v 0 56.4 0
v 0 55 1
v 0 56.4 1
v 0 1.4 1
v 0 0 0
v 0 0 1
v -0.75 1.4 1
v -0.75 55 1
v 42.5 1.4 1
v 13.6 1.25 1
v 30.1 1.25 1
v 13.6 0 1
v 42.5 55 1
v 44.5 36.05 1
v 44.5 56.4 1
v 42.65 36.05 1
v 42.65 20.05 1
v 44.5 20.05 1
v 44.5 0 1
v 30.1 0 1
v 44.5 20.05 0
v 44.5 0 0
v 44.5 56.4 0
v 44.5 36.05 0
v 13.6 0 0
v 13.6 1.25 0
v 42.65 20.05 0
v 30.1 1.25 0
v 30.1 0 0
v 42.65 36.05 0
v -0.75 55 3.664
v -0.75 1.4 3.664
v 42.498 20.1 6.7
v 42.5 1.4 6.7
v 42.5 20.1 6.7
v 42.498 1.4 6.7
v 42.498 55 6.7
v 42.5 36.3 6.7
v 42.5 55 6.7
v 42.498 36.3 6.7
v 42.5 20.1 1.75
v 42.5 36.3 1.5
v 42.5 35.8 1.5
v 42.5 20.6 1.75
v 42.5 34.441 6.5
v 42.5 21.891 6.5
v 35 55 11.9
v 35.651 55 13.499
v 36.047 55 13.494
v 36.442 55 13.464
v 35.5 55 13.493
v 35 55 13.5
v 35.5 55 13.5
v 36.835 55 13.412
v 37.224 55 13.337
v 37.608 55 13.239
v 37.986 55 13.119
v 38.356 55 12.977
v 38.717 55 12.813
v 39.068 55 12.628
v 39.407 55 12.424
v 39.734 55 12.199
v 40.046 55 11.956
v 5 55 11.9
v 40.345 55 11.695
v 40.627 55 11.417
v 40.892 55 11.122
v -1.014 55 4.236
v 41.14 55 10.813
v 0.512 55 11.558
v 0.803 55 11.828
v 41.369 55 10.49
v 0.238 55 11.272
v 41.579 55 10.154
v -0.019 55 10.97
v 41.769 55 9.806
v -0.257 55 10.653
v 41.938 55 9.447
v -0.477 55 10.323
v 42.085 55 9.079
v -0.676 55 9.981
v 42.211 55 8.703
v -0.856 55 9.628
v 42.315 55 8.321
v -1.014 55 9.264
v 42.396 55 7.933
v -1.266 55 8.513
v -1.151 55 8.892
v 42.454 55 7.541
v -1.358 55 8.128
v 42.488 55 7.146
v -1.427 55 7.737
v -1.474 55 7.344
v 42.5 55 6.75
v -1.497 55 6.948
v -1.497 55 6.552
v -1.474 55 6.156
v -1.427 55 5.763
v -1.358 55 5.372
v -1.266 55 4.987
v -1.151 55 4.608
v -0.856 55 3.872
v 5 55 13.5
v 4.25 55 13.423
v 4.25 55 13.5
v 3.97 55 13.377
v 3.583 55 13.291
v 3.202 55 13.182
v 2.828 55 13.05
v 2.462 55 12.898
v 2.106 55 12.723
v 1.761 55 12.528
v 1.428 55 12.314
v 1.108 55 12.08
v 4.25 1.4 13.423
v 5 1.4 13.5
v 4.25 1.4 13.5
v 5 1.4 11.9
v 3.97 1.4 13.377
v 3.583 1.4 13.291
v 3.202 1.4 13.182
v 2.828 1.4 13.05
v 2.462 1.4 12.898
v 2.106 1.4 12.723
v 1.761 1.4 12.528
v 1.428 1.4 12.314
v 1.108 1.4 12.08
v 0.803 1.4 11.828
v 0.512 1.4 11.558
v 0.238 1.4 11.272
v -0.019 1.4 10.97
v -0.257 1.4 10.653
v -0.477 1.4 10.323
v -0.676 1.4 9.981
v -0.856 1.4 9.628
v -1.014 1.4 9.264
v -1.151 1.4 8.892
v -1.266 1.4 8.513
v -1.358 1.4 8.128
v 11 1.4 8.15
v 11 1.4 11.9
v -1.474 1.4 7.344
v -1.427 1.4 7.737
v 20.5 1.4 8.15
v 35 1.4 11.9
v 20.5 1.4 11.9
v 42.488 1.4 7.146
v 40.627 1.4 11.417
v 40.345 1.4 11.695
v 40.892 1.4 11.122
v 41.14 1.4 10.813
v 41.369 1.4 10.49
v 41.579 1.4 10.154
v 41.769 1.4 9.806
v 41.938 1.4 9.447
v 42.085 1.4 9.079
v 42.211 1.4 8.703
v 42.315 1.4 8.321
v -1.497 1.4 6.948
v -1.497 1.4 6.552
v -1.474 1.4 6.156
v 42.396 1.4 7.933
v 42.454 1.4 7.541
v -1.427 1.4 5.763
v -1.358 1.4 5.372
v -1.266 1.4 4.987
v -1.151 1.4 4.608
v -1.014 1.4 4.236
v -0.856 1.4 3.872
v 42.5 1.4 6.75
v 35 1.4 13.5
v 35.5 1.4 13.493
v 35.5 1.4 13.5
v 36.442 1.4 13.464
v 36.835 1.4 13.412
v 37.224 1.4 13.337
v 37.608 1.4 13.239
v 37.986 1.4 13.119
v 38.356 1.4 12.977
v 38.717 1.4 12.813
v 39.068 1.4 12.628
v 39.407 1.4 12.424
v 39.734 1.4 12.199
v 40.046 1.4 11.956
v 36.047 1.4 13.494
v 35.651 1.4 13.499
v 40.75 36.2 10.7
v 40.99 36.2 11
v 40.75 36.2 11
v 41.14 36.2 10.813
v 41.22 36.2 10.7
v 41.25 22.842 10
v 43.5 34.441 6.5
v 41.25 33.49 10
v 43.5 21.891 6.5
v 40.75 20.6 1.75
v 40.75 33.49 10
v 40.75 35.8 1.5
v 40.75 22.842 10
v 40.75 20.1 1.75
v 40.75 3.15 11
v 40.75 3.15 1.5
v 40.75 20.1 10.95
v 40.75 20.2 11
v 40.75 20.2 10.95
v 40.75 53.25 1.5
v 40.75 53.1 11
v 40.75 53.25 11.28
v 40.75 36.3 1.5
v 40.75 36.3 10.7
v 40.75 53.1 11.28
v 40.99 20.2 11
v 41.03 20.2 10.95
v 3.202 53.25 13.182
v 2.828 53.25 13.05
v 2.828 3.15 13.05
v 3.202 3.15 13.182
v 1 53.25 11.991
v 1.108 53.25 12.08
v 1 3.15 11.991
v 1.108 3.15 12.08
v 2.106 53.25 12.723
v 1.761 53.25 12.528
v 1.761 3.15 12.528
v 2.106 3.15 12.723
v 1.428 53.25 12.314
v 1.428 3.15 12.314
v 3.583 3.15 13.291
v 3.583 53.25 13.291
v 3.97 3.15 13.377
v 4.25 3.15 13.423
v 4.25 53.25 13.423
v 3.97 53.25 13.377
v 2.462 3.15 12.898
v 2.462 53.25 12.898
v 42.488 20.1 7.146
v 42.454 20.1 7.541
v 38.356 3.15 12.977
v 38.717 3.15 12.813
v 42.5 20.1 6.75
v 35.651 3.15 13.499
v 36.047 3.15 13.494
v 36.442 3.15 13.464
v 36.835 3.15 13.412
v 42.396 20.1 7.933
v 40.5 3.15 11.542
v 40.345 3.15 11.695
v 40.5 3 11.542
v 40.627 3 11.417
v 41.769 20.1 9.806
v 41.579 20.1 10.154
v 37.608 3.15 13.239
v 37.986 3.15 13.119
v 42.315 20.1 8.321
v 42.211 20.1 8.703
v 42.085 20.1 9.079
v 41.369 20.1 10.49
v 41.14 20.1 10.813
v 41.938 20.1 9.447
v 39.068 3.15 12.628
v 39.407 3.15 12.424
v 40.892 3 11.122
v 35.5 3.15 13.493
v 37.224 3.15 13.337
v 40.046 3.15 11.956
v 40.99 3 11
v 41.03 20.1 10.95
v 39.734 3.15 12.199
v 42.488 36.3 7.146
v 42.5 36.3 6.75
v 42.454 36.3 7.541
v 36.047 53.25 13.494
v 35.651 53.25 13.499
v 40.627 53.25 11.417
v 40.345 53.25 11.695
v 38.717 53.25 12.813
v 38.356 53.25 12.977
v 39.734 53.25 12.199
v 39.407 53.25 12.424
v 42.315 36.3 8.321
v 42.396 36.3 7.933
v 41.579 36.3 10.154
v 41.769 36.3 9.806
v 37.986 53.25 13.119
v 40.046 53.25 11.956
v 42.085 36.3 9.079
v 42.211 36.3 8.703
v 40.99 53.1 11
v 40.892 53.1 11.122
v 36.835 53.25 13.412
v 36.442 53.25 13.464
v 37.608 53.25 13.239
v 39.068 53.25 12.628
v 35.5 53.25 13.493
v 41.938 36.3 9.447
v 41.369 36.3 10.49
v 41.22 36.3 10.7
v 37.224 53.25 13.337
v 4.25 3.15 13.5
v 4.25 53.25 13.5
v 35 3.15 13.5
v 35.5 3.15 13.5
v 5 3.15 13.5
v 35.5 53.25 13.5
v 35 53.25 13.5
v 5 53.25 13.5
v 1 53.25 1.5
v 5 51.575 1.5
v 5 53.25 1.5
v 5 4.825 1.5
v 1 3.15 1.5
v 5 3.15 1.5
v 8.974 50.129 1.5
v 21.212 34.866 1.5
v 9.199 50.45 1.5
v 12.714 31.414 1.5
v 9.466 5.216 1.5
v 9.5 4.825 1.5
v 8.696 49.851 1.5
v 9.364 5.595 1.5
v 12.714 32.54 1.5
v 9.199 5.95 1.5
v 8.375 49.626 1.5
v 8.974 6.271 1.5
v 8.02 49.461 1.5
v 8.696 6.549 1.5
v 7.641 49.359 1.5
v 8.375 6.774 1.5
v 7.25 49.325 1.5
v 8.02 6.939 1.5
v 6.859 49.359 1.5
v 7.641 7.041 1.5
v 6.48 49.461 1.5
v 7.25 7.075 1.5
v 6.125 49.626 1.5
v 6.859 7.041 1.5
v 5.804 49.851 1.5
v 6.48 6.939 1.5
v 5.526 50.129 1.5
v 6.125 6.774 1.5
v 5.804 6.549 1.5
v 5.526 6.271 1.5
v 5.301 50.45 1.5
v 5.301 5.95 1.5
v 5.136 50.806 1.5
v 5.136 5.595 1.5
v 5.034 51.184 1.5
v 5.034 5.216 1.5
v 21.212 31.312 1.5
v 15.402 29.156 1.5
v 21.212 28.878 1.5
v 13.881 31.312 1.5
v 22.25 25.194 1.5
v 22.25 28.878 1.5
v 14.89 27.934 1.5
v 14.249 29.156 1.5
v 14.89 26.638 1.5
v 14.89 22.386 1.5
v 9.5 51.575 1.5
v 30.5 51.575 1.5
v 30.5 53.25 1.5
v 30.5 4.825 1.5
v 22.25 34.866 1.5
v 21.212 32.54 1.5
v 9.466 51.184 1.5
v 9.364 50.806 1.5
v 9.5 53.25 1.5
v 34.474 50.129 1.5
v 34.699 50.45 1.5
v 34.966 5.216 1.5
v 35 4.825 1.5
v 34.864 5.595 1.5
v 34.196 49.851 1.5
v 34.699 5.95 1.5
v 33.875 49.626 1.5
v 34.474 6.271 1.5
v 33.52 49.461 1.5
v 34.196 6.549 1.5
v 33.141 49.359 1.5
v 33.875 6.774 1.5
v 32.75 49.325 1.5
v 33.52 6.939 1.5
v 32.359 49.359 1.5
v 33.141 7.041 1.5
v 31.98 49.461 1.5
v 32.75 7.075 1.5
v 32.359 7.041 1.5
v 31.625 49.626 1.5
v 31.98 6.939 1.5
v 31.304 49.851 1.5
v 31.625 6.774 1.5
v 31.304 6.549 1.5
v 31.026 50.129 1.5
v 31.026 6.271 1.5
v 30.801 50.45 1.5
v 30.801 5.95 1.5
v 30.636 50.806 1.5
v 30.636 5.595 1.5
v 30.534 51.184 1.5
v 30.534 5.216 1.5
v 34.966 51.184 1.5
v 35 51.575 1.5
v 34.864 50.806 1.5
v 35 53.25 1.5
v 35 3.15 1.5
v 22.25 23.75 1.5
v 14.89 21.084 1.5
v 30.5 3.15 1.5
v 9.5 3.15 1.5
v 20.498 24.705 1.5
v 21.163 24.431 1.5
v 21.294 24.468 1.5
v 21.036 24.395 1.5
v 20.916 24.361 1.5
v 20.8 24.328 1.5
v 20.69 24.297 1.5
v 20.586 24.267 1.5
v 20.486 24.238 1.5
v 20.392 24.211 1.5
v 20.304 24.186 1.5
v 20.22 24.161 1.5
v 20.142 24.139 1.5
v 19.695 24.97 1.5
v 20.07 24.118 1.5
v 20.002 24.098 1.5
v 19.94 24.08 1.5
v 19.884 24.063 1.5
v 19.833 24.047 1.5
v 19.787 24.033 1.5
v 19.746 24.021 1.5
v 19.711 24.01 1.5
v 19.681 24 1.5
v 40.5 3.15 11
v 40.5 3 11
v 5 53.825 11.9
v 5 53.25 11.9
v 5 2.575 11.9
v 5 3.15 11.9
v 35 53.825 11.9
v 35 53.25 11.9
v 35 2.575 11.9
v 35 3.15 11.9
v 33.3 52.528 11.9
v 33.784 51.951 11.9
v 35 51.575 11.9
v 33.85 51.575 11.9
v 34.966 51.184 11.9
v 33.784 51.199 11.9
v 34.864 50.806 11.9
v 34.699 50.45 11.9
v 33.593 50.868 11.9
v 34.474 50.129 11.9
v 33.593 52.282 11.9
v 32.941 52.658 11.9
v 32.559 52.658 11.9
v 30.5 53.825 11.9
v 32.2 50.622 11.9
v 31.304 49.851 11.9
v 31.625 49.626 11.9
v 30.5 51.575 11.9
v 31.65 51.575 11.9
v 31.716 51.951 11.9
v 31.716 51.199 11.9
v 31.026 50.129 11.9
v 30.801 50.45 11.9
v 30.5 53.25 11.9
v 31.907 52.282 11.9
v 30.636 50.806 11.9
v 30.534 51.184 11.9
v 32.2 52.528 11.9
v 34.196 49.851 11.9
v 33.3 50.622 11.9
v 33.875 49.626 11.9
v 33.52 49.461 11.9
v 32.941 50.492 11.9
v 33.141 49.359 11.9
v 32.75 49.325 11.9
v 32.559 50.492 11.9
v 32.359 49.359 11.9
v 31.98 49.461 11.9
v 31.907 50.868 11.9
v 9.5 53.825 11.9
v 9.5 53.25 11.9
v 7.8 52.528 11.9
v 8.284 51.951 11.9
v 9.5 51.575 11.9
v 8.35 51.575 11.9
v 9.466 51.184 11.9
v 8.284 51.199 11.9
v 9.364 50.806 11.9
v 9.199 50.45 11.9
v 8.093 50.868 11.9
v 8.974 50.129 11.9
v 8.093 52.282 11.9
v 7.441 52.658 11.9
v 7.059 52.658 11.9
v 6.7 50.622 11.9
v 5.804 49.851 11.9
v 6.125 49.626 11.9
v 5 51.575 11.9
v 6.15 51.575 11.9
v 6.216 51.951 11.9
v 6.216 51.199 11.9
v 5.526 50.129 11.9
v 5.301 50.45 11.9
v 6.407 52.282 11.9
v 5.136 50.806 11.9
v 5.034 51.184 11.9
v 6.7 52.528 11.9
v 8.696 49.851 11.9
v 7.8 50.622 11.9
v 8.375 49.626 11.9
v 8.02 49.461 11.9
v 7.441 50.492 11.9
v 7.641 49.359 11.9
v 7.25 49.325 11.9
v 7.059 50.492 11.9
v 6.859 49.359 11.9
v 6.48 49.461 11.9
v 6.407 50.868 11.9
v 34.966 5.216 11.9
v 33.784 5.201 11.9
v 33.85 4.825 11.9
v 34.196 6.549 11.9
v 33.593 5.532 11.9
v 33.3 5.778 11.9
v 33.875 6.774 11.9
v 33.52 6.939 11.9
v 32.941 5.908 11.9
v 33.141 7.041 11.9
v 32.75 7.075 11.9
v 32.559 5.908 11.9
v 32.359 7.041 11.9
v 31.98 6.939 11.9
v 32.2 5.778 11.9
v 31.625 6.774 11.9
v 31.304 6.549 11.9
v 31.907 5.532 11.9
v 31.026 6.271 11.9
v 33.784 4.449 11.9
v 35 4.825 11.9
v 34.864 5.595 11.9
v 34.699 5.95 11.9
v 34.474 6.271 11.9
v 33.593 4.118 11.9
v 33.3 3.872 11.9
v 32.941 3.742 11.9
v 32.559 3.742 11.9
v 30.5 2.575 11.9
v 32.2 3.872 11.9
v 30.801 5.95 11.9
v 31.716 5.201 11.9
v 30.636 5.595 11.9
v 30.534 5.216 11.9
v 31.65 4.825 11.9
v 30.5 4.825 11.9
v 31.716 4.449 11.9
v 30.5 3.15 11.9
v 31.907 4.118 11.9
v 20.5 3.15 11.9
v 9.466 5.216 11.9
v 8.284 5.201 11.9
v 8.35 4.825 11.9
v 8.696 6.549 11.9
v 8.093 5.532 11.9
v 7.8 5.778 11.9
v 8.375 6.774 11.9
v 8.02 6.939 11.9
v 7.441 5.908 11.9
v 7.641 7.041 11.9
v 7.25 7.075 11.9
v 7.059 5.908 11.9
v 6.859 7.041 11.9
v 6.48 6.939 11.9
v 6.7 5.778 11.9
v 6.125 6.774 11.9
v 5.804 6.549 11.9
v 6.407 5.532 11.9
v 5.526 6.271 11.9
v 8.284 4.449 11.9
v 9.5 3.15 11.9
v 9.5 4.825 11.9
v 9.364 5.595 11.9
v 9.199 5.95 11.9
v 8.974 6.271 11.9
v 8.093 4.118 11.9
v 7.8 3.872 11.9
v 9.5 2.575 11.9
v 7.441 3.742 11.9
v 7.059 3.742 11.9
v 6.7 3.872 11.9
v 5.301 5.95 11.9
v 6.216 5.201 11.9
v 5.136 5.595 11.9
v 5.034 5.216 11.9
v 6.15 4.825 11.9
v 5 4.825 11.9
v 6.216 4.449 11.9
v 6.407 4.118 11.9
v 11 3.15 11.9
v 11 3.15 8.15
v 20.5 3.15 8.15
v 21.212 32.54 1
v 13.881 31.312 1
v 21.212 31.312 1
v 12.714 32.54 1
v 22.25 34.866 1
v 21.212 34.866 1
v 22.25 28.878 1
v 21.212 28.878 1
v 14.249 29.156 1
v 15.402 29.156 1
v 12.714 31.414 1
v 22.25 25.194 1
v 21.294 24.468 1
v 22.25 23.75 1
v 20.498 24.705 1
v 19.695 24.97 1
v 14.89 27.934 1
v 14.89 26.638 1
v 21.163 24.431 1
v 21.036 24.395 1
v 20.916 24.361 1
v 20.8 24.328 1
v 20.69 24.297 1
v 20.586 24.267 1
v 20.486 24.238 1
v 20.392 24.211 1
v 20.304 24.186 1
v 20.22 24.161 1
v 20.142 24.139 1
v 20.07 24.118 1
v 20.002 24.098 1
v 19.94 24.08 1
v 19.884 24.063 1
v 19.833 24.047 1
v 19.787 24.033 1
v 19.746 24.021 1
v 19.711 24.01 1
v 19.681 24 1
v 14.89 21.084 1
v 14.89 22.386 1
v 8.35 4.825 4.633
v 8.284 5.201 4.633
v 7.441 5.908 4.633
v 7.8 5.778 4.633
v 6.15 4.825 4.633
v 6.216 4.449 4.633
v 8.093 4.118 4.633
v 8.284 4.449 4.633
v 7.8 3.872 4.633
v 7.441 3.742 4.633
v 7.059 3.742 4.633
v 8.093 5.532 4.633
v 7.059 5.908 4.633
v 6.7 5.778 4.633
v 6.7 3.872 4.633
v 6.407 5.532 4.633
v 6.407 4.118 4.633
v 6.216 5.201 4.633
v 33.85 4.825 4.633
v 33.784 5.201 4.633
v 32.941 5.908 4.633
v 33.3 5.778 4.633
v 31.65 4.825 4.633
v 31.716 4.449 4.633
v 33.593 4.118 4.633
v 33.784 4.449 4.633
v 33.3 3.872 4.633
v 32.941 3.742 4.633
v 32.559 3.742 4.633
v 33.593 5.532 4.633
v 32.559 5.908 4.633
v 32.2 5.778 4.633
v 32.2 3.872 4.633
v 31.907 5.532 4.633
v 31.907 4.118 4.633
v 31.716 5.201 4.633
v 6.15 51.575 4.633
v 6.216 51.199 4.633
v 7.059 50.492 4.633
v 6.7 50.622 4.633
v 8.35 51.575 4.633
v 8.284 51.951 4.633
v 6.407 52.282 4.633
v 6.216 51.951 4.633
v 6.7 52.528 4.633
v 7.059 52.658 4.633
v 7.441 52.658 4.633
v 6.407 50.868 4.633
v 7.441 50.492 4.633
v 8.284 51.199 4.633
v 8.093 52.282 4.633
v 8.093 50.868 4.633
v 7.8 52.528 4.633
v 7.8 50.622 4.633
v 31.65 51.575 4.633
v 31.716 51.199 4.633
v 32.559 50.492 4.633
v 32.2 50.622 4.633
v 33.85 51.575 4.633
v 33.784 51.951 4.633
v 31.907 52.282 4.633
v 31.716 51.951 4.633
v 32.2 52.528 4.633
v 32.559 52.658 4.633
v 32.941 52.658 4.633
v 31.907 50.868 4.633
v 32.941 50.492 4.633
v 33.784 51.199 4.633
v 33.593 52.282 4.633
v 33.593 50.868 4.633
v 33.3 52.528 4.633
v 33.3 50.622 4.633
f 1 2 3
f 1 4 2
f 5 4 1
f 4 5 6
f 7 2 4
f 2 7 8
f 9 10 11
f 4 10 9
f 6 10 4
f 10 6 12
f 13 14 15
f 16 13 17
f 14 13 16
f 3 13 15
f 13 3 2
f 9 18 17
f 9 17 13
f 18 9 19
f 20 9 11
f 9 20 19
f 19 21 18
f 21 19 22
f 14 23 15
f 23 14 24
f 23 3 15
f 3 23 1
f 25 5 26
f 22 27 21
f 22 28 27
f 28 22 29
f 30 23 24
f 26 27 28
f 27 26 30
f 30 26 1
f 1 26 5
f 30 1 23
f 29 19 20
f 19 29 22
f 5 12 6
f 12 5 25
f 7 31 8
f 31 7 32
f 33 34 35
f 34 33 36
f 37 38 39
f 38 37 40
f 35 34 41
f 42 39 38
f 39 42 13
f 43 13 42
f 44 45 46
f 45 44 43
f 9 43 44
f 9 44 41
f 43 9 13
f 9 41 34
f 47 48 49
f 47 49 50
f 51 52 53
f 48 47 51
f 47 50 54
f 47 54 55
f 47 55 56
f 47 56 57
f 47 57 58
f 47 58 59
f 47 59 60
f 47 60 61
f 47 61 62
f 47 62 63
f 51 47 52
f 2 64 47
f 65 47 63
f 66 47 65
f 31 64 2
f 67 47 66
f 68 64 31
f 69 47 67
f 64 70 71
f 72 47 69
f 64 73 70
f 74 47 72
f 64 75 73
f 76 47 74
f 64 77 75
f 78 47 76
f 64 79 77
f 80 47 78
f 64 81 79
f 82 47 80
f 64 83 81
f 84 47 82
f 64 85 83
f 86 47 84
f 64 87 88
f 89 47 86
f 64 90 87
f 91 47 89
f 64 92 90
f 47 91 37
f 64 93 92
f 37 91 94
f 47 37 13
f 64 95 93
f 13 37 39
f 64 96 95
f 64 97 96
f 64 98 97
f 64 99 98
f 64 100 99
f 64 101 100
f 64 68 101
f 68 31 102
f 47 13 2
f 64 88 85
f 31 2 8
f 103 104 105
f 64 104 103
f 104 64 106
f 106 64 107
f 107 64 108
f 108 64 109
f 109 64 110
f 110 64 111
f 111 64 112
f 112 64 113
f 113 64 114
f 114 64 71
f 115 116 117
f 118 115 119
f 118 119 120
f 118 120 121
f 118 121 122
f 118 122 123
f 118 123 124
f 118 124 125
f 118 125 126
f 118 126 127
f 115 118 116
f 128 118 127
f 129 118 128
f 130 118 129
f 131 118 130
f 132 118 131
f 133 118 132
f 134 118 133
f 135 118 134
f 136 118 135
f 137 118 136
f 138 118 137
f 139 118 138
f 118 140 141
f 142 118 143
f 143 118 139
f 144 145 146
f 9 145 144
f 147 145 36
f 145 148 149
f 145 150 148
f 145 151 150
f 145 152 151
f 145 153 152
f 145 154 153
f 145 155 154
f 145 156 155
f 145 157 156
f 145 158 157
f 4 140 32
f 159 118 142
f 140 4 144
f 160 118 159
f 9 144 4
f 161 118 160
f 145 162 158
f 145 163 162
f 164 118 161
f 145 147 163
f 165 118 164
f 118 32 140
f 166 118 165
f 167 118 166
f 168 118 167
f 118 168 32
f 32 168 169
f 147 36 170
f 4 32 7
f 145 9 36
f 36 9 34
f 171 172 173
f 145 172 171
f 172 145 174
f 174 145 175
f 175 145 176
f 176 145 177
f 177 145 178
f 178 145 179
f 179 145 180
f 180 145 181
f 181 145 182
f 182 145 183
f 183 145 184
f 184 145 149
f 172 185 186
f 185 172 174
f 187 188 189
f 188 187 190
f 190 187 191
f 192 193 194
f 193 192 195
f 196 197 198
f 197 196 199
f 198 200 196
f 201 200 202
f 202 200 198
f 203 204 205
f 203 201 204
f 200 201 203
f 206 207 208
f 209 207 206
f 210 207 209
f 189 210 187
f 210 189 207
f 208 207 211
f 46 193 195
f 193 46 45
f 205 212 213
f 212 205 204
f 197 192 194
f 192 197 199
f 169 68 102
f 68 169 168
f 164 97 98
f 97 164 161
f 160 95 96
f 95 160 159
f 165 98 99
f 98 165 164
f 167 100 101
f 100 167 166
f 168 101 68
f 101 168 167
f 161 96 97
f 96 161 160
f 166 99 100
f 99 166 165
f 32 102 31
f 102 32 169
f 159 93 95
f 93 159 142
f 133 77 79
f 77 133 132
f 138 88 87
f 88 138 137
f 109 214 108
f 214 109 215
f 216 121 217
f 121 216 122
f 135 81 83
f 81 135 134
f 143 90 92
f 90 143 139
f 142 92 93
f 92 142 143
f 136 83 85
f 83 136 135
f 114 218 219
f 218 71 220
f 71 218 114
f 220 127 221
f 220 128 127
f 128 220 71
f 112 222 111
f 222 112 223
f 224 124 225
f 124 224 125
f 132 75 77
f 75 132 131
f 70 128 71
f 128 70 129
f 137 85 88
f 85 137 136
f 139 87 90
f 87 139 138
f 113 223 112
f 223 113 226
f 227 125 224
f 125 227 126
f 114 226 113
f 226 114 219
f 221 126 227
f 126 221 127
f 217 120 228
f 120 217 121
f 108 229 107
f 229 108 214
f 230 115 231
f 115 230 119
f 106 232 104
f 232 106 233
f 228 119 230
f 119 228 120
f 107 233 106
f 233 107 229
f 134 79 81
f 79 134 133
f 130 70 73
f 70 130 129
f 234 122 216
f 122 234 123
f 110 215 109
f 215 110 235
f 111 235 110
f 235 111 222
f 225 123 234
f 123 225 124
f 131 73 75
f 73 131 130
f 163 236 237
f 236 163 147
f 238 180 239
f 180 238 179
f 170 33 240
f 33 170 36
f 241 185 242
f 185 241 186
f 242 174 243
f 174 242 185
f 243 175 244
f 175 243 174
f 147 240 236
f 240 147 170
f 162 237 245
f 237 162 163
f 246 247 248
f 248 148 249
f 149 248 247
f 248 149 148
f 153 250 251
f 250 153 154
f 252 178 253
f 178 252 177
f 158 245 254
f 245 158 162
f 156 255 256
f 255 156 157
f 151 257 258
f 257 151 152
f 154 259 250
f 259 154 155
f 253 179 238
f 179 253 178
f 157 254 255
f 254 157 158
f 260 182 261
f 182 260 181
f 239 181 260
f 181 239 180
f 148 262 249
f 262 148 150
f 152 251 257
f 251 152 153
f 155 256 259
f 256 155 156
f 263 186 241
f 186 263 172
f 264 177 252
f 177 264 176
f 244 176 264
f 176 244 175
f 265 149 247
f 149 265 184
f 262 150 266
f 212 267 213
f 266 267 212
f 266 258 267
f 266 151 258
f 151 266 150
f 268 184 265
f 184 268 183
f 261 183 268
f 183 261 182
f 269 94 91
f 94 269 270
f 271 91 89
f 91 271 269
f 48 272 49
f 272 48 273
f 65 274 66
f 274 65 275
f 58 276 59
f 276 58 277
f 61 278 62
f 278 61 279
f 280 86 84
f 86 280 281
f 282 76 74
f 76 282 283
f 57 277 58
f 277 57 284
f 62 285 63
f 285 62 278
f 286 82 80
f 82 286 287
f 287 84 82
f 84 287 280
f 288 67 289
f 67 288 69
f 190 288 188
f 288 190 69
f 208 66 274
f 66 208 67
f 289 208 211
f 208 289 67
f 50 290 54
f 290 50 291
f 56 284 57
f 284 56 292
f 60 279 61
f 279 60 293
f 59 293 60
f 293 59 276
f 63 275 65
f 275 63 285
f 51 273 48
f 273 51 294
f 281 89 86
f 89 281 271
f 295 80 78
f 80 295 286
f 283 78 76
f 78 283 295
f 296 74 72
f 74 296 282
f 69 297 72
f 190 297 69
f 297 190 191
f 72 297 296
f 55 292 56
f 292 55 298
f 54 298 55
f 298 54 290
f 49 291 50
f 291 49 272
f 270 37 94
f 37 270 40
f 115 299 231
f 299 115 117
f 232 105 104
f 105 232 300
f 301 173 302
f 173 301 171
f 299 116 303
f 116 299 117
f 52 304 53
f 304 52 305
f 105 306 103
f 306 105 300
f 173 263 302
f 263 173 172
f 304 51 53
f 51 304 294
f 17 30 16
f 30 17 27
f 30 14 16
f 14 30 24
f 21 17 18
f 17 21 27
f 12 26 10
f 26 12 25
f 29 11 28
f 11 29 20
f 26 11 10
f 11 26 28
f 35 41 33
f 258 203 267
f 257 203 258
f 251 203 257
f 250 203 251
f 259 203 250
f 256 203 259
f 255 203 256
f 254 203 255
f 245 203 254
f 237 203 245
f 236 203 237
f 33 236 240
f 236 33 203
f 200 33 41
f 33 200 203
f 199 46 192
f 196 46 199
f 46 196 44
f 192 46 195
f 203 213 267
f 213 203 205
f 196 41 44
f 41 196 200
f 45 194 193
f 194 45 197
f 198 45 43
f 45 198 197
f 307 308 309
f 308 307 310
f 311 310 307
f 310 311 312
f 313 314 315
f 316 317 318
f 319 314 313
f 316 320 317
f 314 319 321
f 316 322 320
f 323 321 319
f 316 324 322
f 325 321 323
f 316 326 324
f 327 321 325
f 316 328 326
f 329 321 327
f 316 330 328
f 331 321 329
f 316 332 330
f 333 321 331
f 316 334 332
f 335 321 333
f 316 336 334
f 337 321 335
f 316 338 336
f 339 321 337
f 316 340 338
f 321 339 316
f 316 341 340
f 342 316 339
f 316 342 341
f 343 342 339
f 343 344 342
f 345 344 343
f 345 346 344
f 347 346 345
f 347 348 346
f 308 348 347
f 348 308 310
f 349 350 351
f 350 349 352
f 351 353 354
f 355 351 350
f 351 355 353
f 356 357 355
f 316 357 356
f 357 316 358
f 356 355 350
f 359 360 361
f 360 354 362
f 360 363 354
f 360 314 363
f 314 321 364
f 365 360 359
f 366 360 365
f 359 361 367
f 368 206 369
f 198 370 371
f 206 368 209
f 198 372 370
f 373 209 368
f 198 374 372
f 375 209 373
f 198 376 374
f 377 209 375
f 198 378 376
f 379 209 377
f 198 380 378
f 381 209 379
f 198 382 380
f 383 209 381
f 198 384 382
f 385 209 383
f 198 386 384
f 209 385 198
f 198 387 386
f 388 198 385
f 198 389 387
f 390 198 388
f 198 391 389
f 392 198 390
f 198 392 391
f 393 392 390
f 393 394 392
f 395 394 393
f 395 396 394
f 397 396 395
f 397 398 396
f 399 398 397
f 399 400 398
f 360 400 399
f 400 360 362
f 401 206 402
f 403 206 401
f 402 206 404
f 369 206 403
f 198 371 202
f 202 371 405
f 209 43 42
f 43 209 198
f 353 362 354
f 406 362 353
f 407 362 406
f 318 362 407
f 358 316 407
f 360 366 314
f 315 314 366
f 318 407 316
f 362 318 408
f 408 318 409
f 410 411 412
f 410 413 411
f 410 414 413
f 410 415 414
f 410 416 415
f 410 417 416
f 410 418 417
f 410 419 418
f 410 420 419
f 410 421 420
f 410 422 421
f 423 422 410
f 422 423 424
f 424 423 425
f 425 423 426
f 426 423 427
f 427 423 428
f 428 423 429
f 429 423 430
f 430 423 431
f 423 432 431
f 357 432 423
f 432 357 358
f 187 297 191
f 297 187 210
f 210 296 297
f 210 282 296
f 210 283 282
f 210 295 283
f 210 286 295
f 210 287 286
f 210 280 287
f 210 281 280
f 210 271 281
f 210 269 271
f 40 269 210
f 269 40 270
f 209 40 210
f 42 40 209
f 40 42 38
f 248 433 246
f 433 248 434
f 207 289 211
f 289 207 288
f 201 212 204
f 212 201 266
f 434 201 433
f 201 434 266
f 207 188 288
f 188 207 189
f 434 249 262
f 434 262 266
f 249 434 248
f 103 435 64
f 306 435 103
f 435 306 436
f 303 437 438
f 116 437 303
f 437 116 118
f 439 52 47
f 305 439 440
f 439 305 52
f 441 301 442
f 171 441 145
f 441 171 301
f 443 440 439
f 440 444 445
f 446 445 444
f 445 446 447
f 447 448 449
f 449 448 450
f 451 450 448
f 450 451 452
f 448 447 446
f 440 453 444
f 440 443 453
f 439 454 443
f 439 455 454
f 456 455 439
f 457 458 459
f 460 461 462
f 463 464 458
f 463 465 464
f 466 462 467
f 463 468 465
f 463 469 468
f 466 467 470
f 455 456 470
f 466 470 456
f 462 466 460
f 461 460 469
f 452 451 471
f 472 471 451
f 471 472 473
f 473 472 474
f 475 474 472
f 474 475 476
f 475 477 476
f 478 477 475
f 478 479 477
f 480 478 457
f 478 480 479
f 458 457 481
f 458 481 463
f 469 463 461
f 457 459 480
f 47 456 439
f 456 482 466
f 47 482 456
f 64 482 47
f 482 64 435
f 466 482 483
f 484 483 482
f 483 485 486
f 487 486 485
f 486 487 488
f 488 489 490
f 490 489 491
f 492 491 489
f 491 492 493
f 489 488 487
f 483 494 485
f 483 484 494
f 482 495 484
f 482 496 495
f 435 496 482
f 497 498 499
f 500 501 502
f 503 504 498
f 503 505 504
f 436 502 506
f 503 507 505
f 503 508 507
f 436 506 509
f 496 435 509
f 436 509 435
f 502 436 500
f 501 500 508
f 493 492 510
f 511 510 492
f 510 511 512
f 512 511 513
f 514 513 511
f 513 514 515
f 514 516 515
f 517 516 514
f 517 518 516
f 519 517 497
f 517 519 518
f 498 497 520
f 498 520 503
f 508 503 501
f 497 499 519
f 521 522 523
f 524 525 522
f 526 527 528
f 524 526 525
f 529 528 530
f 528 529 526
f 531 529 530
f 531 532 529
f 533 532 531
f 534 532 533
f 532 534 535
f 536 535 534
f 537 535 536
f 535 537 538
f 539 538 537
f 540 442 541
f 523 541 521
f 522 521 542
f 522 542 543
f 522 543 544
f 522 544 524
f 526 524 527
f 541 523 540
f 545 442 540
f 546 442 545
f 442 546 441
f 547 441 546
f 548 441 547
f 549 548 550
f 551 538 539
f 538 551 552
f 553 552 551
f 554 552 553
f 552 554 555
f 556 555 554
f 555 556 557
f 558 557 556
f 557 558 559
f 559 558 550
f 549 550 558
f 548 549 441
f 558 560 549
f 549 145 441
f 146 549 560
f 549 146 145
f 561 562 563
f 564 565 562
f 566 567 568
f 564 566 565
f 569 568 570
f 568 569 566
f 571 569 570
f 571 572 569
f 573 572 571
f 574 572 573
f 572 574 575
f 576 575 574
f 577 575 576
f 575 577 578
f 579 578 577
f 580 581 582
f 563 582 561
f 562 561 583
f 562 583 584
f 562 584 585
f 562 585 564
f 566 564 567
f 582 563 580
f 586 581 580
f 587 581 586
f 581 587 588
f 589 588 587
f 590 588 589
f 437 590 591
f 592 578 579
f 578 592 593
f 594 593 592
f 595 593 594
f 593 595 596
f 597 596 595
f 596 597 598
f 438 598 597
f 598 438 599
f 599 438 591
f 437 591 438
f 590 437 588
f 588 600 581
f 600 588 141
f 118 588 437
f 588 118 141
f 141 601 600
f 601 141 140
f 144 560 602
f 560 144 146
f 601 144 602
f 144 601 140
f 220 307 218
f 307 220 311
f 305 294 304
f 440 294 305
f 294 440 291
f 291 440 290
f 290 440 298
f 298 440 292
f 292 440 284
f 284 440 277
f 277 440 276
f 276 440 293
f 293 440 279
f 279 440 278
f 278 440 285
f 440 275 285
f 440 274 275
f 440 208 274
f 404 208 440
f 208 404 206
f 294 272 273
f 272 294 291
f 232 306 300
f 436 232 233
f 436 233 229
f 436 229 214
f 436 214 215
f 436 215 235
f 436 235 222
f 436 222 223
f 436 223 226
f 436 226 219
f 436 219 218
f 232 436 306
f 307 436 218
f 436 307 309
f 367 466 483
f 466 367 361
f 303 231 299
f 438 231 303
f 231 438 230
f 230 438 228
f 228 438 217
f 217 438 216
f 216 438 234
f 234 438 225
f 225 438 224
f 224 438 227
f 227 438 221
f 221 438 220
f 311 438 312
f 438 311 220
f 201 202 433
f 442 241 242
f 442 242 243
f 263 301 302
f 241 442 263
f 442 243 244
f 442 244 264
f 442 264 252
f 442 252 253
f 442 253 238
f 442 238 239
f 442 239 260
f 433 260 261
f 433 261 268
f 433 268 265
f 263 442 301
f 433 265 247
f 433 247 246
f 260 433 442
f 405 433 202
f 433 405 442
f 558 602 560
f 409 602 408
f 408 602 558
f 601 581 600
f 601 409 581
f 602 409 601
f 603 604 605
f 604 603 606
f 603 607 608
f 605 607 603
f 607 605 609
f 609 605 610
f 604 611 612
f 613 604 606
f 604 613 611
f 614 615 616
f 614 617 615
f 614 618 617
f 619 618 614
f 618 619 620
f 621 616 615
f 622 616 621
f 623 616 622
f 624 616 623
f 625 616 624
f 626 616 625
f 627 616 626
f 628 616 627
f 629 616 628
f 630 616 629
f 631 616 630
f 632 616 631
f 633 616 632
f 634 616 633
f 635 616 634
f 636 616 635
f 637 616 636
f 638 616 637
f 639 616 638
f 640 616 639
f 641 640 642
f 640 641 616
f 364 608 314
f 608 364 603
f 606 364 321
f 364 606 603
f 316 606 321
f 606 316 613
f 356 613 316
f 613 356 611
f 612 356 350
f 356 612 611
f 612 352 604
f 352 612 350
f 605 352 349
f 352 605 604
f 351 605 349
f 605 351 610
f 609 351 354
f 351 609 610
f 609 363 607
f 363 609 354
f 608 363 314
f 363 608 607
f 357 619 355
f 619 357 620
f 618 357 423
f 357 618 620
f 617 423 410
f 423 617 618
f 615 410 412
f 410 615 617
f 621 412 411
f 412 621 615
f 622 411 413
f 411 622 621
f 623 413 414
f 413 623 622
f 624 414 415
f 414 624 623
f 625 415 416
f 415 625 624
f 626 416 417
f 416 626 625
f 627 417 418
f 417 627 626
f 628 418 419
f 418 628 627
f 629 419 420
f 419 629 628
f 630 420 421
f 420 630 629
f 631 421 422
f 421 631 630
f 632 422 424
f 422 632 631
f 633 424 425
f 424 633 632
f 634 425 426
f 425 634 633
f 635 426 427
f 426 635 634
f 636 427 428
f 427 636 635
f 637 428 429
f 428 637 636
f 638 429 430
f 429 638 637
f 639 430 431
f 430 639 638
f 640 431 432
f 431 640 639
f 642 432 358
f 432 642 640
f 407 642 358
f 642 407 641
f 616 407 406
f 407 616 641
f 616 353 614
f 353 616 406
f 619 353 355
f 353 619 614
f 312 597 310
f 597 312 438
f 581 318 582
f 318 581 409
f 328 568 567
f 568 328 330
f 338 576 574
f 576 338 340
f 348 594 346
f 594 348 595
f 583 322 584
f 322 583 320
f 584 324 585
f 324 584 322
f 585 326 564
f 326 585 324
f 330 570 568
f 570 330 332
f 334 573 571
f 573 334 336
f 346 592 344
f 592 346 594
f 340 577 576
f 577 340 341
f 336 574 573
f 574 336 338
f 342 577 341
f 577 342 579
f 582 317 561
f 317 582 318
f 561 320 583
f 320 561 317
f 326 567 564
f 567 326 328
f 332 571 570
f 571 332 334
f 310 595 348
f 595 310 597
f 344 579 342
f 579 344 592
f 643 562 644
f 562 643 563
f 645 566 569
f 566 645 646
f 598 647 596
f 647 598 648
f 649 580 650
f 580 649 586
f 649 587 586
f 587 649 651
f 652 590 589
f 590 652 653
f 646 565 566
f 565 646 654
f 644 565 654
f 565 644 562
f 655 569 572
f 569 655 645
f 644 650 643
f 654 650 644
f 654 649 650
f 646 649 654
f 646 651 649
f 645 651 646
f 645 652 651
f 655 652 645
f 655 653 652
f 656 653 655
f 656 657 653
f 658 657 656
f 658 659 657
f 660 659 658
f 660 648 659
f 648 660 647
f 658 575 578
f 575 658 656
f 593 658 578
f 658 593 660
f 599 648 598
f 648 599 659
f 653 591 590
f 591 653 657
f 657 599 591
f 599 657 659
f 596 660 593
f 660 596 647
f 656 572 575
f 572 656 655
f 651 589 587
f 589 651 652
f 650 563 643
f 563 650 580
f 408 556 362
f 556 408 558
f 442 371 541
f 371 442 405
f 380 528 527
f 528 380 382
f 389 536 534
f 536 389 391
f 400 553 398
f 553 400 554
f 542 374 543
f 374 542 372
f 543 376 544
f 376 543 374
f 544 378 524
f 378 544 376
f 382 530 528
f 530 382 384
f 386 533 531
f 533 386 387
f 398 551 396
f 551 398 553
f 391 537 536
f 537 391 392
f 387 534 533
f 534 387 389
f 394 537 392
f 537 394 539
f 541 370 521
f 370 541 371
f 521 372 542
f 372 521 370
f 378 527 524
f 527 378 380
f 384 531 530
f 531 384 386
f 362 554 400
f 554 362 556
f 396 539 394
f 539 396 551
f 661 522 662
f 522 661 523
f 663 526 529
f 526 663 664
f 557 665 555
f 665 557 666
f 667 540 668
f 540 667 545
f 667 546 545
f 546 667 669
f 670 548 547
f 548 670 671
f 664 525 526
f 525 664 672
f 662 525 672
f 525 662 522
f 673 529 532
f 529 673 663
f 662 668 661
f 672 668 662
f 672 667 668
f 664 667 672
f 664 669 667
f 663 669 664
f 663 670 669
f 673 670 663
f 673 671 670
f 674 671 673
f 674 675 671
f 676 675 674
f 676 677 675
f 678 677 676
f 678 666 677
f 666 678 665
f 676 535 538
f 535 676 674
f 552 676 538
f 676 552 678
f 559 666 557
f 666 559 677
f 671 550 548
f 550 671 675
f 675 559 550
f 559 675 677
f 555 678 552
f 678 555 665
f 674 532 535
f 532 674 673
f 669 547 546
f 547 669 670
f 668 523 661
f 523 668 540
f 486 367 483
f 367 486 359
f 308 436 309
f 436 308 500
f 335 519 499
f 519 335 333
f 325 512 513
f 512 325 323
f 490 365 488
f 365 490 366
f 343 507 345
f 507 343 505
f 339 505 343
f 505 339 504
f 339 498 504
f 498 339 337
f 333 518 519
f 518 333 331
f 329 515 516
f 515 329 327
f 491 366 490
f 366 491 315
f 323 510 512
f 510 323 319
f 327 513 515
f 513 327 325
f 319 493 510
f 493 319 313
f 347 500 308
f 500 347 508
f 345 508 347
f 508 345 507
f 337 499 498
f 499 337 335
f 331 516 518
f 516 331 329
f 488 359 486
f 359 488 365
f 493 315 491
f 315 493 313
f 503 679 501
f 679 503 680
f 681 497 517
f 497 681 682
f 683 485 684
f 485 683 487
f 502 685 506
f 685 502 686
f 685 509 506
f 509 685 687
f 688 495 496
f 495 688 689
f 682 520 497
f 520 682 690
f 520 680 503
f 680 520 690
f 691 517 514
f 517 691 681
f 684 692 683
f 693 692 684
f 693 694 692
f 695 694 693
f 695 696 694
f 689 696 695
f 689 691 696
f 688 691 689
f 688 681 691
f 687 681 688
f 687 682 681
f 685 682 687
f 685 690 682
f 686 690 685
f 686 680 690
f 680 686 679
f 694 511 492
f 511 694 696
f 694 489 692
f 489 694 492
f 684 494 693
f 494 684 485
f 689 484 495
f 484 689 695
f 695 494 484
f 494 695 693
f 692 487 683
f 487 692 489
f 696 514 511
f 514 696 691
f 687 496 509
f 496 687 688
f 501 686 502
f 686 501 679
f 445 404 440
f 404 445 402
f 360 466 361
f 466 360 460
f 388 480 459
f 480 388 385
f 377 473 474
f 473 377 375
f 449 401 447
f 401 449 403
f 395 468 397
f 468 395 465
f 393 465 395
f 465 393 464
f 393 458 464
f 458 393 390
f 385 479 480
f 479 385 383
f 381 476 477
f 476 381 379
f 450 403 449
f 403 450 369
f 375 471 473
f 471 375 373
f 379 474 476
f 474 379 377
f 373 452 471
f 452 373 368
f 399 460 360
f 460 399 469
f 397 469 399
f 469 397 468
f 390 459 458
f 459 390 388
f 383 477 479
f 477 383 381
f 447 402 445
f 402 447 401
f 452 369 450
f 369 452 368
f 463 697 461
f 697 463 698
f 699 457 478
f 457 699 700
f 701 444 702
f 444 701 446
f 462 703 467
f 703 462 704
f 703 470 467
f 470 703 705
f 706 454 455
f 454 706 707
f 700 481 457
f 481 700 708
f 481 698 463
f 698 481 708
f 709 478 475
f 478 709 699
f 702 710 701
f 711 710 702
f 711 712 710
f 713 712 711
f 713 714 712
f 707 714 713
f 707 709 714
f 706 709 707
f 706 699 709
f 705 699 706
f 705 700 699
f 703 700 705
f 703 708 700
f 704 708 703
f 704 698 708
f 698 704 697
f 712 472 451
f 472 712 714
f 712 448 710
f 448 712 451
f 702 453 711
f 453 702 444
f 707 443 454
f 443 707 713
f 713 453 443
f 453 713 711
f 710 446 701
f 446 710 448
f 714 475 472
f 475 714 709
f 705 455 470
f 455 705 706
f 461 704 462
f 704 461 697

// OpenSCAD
/*
  TI-58/59 Battery Lid for LiPo Pack V1
  This is intended to hold a PCB and a LiPo battery,
  and charge from USB. 

  Dimensions measured from several TI-58 and TI-59 calculators and two BP-1A packs.
  
  0.4 and earlier - very rough 
  
  0.5 - extended tab overhang to increase engagement with calculator latch
  
  0.6 - reduced contact_zabs to 13.5 to prevent PCB screws and LED from interfering with inside of TI-59
  
  0.7 - rounded cutout on inside of tab hinge to help de-stress and prevent breakage. Increased slope of latch tab to make insertion into calculator easier
  
  0.8 - removed cutout (made tab worse). This becomes V1

  T. LeMense
  February 7, 2021
*/


$fa = 1;
$fs = 0.4;

// L is length, and is along Y AXIS
// W is width, and is along X AXIS
// H is height, and is along Z AXIS

// baseplate (first surface)
base_t = 1.0;  // base thickness (measured)
base_w = 44.5;  // width (measured)
base_w3 = 14.4;  // ledge width from pol slot to latch end (measured)
base_w1 = 13.6;  // ledge w from round end to pol slot (measured)
base_w2 = base_w-base_w1-base_w3;  // calculate pol slot w (measured 16.4mm)
base_l = 56.4;   // length (measured)
ledge_t = 1.4;  // ledge along short sides (improved)
ledge_t1 = 0.75; // ledge step-back along curved long side
ledge_t2 = 2.0;  // ledge along latch side (measured)

//contact Z offset (absolute to bottom of base)
//keep below 15 to avoid interference with innards of TI59!
contact_zabs = 13.5; 

// PCB information
pcb_t = 1.6;
pcb_w = 30;
pcb_l = 53;
pcb_z = contact_zabs-pcb_t-base_t;
pcb_x = 5;

// USB connector cutout
// MOLEX 1050170001
usb_h = 3.75;
usb_w = 9.5;

// "superstructure"
super_w = base_w - ledge_t2 + ledge_t1; // width (short edge)
super_l = base_l - 2*ledge_t;  // length (long edge)
super_h = 5.7;  // the "straight rise" from baseplate
super_wall_t = 1.75;
super_floor_t = 0.5; // additional floor thickness
round_rad = (pcb_z+pcb_t+base_t)/2;

// latch 'tab' is an extruded polygon
latch_tab_w = super_wall_t + 1.0; // extent of tab past wall
latch_tab_h = 3.5;
latch_tab_w2 = 0.5;
latch_tab_l = 16.0;
latch_tab_z = 5.5;   // relative to base_t

p0 = [0, 0];
p1 = [0, latch_tab_h];
p2 = [latch_tab_w2,latch_tab_h];
p3 = [latch_tab_w,0];
tab_points = [p0, p1, p2, p3];
    
// hinge cutout is extruded 2D
latch_tab_l2 = 10.0;
latch_tab_h2 = super_h+latch_tab_h;

p4 = [0, 0];
p5 = [0, latch_tab_h2];
p6 = [(latch_tab_l - latch_tab_l2)/2,latch_tab_h2];
p7 = [latch_tab_w2,0];
cutout_points = [p4, p5, p6, p7];

echo("inside cavity width is", super_w-2*super_wall_t);
echo("inside cavity length is", super_l-2*super_wall_t);
echo("PCB dimensions are ",pcb_w," x ",pcb_l);

module RoundedBoss(side,height,hole_dia){
    difference() {
        union() {
        cube([side,side/2,height]);
        translate([side/2,side/2,0])
        cylinder(d=side,h=height);
        }
        
        translate([side/2,side/2,height/3])
        cylinder(d=hole_dia,h=height/1.5);
    }
}

function RoundedBossHoleCenter(side,height,hole_dia) = [side/2,side/2,0];
   

/* 
  Define some "cuts" to export as DXF, to help
  guide the PCB size (cut 1) and PCB hole placement
  (cut 2). These are translated to place PCB corner at 
  origin.  Note that the PCB model must be enabled, and
  the PCB Z at 20, in order to make cut4 useful.

  uncomment the projection.. and the desired translate line. Render. Export as DXF
*/

//projection(cut = true) 
//translate([-pcb_x,-(base_l-pcb_l)/2,-base_t/2])   //cut1 = base extent
//translate([-pcb_x,-(base_l-pcb_l)/2,-10.5])  //cut3 = cavity inside w.r.t PCB
//translate([-pcb_x,-(base_l-pcb_l)/2,-20]) //cut4 = PCB cuts + contacts + holes

union(){
difference() {
    union() {
        
// additive items        
        
    // the baseplate
    cube(size=[base_w, base_l, base_t]);
        
    // the superstructure inner volume
    translate([-ledge_t1, ledge_t, base_t])
    cube([super_w, super_l,super_h]); 

    // the locking tab
    translate([-ledge_t1-super_wall_t+super_w,ledge_t+(super_l/2)+(latch_tab_l/2),latch_tab_z+base_t]) 
    rotate([90,0,0]) 
    linear_extrude(height=latch_tab_l) polygon(tab_points);
        
    // the rounded rear wall
    translate([-ledge_t1+6,ledge_t,round_rad]) 
    rotate([-90,0,0]) 
    cylinder(r=round_rad,h=super_l);
        
    // the two walls to either side of latch
    translate([-ledge_t1+super_w-round_rad,ledge_t,round_rad]) 
    rotate([-90,0,0]) 
    cylinder(r=round_rad,h=super_l/2-latch_tab_l/2);

    translate([-ledge_t1+super_w-round_rad,base_l-ledge_t,round_rad]) 
    rotate([90,0,0]) 
    cylinder(r=round_rad,h=super_l/2-latch_tab_l/2);
        
    // complete the side walls
    translate ([(5-0.75),ledge_t,base_t])
    cube([super_w-12,super_l,2*round_rad-base_t]); 
    
    }
    
// subtractive items            
    
    // remove tab release slot from base
    translate([base_w - 1.85,1.25+(super_l/2)-(latch_tab_l/2),-0.25]) 
    cube([2,latch_tab_l,2]);
    
    // remove polarizing notch from base
    translate([base_w1,-1.25,-0.5]) cube([base_w2,2.50,2]);
        
    // remove the two hinge cutouts
    translate([super_w-super_wall_t-1,ledge_t+(super_l/2)-(latch_tab_l/2)-0.1,base_t+0.75])
    rotate([90,0,90])
    linear_extrude(height=2*super_wall_t)
    polygon(cutout_points);
    
    translate([-1+super_wall_t+super_w,ledge_t+(super_l/2)+(latch_tab_l/2)+0.1,base_t+0.5])
    rotate([90,0,-90]) 
    linear_extrude(height=2*super_wall_t) 
    polygon(cutout_points);
    
    // de-stress the tab hinge
//translate([-ledge_t1+super_w-2.5,ledge_t+(super_l/2)-(latch_tab_l/2)-0.1,base_t+2.25])
//rotate([-90,0,0])
//cylinder(r=1.75,h=latch_tab_l);

    // flatten the rounded wall edges
    translate([-2, 1.25+super_wall_t, base_t+12.5])
    cube([5,super_l-2*super_wall_t,5]);
    translate([base_w-4, 1.25+super_wall_t, base_t+10])
    cube([5,super_l-2*super_wall_t,5]);

    // remove cutout for PCB
    translate([pcb_x,0,base_t+pcb_z])
    cube([pcb_w, pcb_l+4, pcb_t+1]);
    
    // remove cutout for USB micro B
    translate([pcb_x+6,0,base_t+pcb_z-usb_h])
    cube([usb_w,4*super_wall_t,2*usb_h]);

    // remove the superstructure insides
    translate([super_wall_t-ledge_t1, ledge_t+super_wall_t, base_t+super_floor_t])
    cube([super_w-2*super_wall_t, super_l-2*super_wall_t, 20]); 
    
    // etch some text into the floor
    translate([base_w/2,base_l/2,base_t])
    rotate([0,0,90])
    linear_extrude(3)
    text( "v1", size= 10, ,halign = "center", valign = "bottom" );
}

// mounting screw bosses
boss_l = 4.5;
boss_h_dia = 2.2;
boss_inset = (boss_l - boss_h_dia)/4;

translate([pcb_x,ledge_t+super_wall_t-boss_inset,base_t])
RoundedBoss(boss_l,pcb_z,boss_h_dia);  // for #2 screw
h1 = [pcb_x+boss_l/2,ledge_t+super_wall_t-boss_inset+boss_l/2,0];

translate([pcb_x+pcb_w-boss_l,ledge_t+super_wall_t-boss_inset,base_t])
RoundedBoss(boss_l,pcb_z,boss_h_dia);  // for #2 screw
h2 = [pcb_x+pcb_w-boss_l/2,ledge_t+super_wall_t-boss_inset+boss_l/2,0];

translate([pcb_x+boss_l,base_l-ledge_t-super_wall_t+boss_inset,base_t])
rotate([0,0,180])
RoundedBoss(boss_l,pcb_z,boss_h_dia);  // for #2 screw
h3 = [pcb_x+boss_l/2,base_l-ledge_t-super_wall_t+boss_inset-boss_l/2,0];

translate([pcb_x+pcb_w,base_l-ledge_t-super_wall_t+boss_inset,base_t])
rotate([0,0,180])
RoundedBoss(boss_l,pcb_z,boss_h_dia);  // for #2 screw
h4 = [pcb_x+pcb_w-boss_l/2,base_l-ledge_t-super_wall_t+boss_inset-boss_l/2,0];



/*
// uncomment this block if a pcb "model" is desired
pcb_model_z = 20;
//pcb_model_z = pcb_z+base_t;
//hole_dia = 0.086 * 25.4;
pad_width = 5;
pad_length = 15;
hole_dia = 1;
pad1_x = 10;
pad2_x = 27;
echo ("pad1 center ",[pad1_x,base_l/2]);
echo ("pad2 center ",[pad2_x,base_l/2]);

translate([0,0,pcb_model_z]) 
    color("green") 
    linear_extrude(height=pcb_t) 
    difference(){
       translate ([pcb_x,(base_l-pcb_l)/2,0]) square ([pcb_w,pcb_l],false); 
       translate([pad1_x,base_l/2,pcb_model_z])        square([pad_width,pad_length],true);
       translate([pad2_x,base_l/2,pcb_model_z])        square([pad_width,pad_length],true);
       translate(h1) circle(d = hole_dia);
       translate(h2) circle(d = hole_dia);
       translate(h3) circle(d = hole_dia);
       translate(h4) circle(d = hole_dia);
    }
//*/
}
